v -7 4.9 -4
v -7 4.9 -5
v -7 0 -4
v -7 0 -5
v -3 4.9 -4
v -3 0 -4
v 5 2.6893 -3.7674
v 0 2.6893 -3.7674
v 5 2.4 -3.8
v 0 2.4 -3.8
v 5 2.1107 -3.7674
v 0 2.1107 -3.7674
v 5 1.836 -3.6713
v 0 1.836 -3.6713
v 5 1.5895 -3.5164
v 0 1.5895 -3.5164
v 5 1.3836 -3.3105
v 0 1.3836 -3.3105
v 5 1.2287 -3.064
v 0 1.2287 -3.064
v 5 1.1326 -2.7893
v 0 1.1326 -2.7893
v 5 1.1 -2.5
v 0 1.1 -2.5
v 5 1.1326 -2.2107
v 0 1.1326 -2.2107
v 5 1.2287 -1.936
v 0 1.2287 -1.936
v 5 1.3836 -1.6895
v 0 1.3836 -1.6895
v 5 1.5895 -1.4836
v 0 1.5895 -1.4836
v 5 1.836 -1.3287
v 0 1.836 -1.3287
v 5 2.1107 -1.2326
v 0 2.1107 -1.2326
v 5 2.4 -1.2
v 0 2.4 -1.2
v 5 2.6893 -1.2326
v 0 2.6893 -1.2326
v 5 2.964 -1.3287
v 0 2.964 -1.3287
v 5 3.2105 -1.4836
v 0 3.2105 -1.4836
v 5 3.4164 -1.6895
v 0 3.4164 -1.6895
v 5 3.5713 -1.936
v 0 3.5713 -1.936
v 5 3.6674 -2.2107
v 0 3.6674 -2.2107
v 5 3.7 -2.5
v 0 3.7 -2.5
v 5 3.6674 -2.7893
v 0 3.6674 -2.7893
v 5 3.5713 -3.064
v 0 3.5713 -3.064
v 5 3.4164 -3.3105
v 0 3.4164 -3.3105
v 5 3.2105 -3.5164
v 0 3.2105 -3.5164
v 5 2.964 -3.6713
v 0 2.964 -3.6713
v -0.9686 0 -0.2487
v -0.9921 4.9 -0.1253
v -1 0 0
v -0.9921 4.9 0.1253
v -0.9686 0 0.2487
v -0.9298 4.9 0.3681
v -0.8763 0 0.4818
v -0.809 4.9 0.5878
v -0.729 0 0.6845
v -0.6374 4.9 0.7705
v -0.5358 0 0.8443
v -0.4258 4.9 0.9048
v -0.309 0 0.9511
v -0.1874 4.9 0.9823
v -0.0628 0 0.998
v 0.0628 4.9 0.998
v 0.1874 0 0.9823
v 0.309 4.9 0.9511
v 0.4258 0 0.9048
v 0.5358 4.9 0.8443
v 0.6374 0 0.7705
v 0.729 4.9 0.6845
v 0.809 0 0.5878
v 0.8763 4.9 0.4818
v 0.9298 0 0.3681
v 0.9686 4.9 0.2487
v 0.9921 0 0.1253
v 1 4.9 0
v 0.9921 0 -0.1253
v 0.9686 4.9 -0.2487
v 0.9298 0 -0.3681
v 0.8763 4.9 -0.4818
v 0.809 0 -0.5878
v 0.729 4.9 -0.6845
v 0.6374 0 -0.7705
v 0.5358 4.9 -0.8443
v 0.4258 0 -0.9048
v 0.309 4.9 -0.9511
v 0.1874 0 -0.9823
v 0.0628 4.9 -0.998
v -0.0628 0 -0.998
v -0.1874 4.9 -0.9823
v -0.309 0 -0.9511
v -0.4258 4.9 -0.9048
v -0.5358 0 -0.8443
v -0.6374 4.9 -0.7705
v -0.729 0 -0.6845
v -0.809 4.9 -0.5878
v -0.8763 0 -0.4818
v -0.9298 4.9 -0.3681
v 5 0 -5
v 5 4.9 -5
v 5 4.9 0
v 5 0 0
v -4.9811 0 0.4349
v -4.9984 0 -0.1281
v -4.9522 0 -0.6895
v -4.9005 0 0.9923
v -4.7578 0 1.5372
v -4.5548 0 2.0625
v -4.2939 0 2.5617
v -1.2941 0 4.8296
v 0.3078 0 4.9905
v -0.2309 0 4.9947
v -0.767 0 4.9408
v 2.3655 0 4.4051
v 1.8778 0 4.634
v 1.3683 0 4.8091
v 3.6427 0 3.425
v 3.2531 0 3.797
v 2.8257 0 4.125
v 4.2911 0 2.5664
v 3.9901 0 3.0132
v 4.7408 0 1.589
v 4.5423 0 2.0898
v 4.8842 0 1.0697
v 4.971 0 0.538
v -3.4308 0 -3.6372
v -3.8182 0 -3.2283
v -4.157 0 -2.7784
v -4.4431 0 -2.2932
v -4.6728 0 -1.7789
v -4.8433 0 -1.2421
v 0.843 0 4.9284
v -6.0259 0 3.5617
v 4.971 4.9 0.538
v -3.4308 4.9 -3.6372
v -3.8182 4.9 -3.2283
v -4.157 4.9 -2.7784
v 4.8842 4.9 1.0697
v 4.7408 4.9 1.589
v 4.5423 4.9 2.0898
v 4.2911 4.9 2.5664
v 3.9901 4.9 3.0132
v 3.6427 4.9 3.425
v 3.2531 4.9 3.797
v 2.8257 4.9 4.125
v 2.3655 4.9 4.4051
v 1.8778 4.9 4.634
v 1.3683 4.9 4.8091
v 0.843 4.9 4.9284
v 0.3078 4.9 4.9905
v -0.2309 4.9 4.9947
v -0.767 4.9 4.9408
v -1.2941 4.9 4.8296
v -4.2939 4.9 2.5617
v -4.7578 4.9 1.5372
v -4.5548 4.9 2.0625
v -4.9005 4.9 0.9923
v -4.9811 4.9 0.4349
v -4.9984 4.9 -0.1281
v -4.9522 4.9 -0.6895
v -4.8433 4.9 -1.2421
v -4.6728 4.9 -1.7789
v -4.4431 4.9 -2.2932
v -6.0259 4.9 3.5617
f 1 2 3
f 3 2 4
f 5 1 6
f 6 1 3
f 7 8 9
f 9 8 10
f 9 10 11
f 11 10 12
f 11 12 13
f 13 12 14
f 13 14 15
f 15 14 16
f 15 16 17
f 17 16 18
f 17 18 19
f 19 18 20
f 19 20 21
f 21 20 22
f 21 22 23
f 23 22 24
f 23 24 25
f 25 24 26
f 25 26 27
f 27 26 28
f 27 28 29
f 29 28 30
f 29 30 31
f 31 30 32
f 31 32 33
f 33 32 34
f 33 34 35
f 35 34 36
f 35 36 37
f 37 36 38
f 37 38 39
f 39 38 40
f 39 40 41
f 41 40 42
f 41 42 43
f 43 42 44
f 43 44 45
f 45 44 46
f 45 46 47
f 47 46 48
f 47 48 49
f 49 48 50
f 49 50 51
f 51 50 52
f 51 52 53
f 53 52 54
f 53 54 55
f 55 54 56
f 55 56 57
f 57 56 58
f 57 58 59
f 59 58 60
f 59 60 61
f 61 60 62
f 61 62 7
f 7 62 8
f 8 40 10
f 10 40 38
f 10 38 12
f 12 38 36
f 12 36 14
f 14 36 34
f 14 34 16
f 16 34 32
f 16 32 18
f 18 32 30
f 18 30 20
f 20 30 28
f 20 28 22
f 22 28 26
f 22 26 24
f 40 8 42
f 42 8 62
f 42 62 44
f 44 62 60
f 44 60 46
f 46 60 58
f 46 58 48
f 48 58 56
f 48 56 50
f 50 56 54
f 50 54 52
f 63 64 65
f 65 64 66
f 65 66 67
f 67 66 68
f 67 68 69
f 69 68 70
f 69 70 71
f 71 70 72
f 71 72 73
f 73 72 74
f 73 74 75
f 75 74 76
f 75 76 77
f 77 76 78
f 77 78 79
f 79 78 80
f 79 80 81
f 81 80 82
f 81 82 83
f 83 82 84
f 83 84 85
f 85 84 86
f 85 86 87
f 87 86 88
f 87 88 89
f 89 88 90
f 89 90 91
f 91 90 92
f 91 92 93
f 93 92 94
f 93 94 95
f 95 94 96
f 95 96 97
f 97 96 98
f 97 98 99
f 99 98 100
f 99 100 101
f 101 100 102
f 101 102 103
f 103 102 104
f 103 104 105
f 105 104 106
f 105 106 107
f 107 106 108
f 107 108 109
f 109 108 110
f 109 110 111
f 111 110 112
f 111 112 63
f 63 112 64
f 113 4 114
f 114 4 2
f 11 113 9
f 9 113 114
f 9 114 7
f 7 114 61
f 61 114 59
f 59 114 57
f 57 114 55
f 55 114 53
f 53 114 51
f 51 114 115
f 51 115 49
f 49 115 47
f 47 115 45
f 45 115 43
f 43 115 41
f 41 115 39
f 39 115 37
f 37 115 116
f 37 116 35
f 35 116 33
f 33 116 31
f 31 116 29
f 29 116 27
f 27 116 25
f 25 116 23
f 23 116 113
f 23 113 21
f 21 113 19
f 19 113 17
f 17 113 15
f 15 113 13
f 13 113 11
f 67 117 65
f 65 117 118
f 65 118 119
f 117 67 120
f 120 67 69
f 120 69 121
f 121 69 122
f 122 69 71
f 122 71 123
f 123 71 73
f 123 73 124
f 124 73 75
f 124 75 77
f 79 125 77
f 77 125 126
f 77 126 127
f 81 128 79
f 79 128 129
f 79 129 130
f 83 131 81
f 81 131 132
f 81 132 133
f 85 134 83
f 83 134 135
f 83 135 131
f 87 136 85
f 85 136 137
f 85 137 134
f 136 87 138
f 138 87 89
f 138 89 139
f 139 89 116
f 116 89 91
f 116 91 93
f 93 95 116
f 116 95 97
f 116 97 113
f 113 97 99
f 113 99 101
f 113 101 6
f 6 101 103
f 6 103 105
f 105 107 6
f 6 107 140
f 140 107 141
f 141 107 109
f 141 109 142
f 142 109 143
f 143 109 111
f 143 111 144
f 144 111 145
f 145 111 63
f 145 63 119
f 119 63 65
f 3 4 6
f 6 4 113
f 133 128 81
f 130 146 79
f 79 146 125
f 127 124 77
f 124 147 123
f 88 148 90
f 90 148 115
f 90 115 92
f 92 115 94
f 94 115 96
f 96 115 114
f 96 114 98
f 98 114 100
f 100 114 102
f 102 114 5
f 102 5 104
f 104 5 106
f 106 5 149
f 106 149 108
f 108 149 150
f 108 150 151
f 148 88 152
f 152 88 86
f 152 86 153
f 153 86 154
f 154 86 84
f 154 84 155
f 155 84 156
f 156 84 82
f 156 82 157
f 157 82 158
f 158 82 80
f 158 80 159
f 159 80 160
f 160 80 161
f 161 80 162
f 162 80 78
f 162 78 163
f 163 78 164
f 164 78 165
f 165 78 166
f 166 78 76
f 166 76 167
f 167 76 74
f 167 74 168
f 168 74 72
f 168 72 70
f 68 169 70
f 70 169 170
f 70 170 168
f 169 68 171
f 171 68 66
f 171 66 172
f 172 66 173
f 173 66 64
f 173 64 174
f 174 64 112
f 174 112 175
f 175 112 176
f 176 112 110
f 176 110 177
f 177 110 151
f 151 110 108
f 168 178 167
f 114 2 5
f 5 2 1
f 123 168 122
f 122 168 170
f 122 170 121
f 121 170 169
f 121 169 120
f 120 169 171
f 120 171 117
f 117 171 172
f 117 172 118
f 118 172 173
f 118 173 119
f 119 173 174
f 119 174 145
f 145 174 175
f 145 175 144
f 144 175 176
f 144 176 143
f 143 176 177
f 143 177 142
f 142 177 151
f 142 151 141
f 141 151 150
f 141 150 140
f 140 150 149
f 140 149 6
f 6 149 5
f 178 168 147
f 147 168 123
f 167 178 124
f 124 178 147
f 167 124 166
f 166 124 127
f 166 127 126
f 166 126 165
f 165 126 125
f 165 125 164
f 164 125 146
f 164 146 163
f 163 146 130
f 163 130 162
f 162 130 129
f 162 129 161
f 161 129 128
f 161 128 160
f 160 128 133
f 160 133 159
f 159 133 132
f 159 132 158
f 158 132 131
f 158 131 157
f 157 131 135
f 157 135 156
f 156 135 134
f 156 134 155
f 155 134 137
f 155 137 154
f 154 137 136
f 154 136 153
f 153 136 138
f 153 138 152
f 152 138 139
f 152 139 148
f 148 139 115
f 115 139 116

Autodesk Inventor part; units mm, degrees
ref_plane "YZ Plane" through (0, 0, 0) normal (1, 0, 0) x (0, 1, 0)
ref_plane "XZ Plane" through (0, 0, 0) normal (0, 1, 0) x (-1, 0, 0)
ref_plane "XY Plane" through (0, 0, 0) normal (0, 0, 1) x (1, 0, 0)
sketch "スケッチ1" plane through (0, 0, 0) normal (0, 1, 0) x (-1, 0, 0)
  arc A0 (0, -5) -> (-5, 0) centre (0, 0) ccw
  line L0 (0, -5) -> (-5, -5)
  line L1 (0, -5) -> (5, -5) construction
  line L2 (-5, -5) -> (-5, 0)
  dimension "d1" = 5
  dimension "d2" = 5
  dimension "d3" = 180
  dimension "d4" = 5
extrude "押し出し1" add sketch "スケッチ1" along normal blind 4.9
sketch "スケッチ2" plane through (0, 4.9, 0) normal (0, 1, 0) x (1, 0, 0)
  arc A0 (0, 5) -> (5, 0) centre (0, 0) ccw projected
  line L0 (0.0716, -4.9995) -> (0.0716, -6.9995)
  line L1 (0.0716, -6.9995) -> (3.5355, -3.5355)
  line L2 (0.0716, -6.9995) -> (4.9704, -6.9995) construction
  line L3 (0.0716, -4.9995) -> (3.5355, -3.5355)
  line L4 (4.3655, -2.4378) -> (6.0975, -3.4378)
  line L5 (6.0975, -3.4378) -> (4.8296, 1.2941)
  line L6 (4.3655, -2.4378) -> (4.8296, 1.2941)
  line L7 (4.2939, 2.5617) -> (6.0259, 3.5617)
  line L8 (6.0259, 3.5617) -> (1.2941, 4.8296)
  line L9 (4.2939, 2.5617) -> (1.2941, 4.8296)
  line L10 (-0.0716, 4.9995) -> (-0.0716, 6.9995)
  line L11 (-0.0716, 6.9995) -> (-3.5355, 3.5355)
  line L12 (-0.0716, 4.9995) -> (-3.5355, 3.5355)
  line L13 (-4.3655, 2.4378) -> (-6.0975, 3.4378)
  line L14 (-6.0975, 3.4378) -> (-4.8296, -1.2941)
  line L15 (-4.3655, 2.4378) -> (-4.8296, -1.2941)
  line L16 (-4.2939, -2.5617) -> (-6.0259, -3.5617)
  line L17 (-6.0259, -3.5617) -> (-1.2941, -4.8296)
  line L18 (-4.2939, -2.5617) -> (-1.2941, -4.8296)
  dimension "d7" = 2
  dimension "d8" = 45
  dimension "d41" = 360
sketch "スケッチ3" plane through (0, 4.9, 0) normal (0, 1, 0) x (1, 0, 0)
  point P0 (0, 0)
  point P1 (0, 0)
hole "穴1" at (0, 4.9, 0) direction (0, -1, 0) diameter 2 end through all
sketch "スケッチ4" plane through (5, 0, 0) normal (1, 0, 0) x (0, 0, -1)
  line L0 (0, 4.9) -> (5, 4.9) projected
  line L1 (5, 0) -> (5, 4.9) projected
  point P0 (0, 0)
  point P1 (2.5, 2.4)
  dimension "d28" = 2.5
  dimension "d29" = 2.5
hole "穴2" at (5, 2.4, -2.5) direction (-1, 0, 0) diameter 2.6 depth 5
sketch "スケッチ5" plane through (0, 4.9, 0) normal (0, 1, 0) x (1, 0, 0)
  point P0 (0, 0)
sketch "スケッチ7" plane through (0, 4.9, 0) normal (0, 1, 0) x (1, 0, 0)
  arc A0 (0, 5) -> (5, 0) centre (0, 0) ccw projected
  line L0 (0, 5) -> (-7, 5)
  line L1 (-7, 5) -> (-7, 4)
  line L2 (-7, 4) -> (-3, 4)
  line L3 (-3, 4) -> (0, 5)
  point P0 (-4.936, 0.7977)
  dimension "d35" = 7
  dimension "d36" = 1
extrude "押し出し4" add sketch "スケッチ7" against normal blind 4.9 contours A0 L2 L1 L0
extrude "押し出し5" add sketch "スケッチ2" against normal blind 4.9 contours A0 L17 L16
equation "\"d37\" = atumi"
equation "\"atumi\" = 4.9"
properties part number "ikatire2b"
